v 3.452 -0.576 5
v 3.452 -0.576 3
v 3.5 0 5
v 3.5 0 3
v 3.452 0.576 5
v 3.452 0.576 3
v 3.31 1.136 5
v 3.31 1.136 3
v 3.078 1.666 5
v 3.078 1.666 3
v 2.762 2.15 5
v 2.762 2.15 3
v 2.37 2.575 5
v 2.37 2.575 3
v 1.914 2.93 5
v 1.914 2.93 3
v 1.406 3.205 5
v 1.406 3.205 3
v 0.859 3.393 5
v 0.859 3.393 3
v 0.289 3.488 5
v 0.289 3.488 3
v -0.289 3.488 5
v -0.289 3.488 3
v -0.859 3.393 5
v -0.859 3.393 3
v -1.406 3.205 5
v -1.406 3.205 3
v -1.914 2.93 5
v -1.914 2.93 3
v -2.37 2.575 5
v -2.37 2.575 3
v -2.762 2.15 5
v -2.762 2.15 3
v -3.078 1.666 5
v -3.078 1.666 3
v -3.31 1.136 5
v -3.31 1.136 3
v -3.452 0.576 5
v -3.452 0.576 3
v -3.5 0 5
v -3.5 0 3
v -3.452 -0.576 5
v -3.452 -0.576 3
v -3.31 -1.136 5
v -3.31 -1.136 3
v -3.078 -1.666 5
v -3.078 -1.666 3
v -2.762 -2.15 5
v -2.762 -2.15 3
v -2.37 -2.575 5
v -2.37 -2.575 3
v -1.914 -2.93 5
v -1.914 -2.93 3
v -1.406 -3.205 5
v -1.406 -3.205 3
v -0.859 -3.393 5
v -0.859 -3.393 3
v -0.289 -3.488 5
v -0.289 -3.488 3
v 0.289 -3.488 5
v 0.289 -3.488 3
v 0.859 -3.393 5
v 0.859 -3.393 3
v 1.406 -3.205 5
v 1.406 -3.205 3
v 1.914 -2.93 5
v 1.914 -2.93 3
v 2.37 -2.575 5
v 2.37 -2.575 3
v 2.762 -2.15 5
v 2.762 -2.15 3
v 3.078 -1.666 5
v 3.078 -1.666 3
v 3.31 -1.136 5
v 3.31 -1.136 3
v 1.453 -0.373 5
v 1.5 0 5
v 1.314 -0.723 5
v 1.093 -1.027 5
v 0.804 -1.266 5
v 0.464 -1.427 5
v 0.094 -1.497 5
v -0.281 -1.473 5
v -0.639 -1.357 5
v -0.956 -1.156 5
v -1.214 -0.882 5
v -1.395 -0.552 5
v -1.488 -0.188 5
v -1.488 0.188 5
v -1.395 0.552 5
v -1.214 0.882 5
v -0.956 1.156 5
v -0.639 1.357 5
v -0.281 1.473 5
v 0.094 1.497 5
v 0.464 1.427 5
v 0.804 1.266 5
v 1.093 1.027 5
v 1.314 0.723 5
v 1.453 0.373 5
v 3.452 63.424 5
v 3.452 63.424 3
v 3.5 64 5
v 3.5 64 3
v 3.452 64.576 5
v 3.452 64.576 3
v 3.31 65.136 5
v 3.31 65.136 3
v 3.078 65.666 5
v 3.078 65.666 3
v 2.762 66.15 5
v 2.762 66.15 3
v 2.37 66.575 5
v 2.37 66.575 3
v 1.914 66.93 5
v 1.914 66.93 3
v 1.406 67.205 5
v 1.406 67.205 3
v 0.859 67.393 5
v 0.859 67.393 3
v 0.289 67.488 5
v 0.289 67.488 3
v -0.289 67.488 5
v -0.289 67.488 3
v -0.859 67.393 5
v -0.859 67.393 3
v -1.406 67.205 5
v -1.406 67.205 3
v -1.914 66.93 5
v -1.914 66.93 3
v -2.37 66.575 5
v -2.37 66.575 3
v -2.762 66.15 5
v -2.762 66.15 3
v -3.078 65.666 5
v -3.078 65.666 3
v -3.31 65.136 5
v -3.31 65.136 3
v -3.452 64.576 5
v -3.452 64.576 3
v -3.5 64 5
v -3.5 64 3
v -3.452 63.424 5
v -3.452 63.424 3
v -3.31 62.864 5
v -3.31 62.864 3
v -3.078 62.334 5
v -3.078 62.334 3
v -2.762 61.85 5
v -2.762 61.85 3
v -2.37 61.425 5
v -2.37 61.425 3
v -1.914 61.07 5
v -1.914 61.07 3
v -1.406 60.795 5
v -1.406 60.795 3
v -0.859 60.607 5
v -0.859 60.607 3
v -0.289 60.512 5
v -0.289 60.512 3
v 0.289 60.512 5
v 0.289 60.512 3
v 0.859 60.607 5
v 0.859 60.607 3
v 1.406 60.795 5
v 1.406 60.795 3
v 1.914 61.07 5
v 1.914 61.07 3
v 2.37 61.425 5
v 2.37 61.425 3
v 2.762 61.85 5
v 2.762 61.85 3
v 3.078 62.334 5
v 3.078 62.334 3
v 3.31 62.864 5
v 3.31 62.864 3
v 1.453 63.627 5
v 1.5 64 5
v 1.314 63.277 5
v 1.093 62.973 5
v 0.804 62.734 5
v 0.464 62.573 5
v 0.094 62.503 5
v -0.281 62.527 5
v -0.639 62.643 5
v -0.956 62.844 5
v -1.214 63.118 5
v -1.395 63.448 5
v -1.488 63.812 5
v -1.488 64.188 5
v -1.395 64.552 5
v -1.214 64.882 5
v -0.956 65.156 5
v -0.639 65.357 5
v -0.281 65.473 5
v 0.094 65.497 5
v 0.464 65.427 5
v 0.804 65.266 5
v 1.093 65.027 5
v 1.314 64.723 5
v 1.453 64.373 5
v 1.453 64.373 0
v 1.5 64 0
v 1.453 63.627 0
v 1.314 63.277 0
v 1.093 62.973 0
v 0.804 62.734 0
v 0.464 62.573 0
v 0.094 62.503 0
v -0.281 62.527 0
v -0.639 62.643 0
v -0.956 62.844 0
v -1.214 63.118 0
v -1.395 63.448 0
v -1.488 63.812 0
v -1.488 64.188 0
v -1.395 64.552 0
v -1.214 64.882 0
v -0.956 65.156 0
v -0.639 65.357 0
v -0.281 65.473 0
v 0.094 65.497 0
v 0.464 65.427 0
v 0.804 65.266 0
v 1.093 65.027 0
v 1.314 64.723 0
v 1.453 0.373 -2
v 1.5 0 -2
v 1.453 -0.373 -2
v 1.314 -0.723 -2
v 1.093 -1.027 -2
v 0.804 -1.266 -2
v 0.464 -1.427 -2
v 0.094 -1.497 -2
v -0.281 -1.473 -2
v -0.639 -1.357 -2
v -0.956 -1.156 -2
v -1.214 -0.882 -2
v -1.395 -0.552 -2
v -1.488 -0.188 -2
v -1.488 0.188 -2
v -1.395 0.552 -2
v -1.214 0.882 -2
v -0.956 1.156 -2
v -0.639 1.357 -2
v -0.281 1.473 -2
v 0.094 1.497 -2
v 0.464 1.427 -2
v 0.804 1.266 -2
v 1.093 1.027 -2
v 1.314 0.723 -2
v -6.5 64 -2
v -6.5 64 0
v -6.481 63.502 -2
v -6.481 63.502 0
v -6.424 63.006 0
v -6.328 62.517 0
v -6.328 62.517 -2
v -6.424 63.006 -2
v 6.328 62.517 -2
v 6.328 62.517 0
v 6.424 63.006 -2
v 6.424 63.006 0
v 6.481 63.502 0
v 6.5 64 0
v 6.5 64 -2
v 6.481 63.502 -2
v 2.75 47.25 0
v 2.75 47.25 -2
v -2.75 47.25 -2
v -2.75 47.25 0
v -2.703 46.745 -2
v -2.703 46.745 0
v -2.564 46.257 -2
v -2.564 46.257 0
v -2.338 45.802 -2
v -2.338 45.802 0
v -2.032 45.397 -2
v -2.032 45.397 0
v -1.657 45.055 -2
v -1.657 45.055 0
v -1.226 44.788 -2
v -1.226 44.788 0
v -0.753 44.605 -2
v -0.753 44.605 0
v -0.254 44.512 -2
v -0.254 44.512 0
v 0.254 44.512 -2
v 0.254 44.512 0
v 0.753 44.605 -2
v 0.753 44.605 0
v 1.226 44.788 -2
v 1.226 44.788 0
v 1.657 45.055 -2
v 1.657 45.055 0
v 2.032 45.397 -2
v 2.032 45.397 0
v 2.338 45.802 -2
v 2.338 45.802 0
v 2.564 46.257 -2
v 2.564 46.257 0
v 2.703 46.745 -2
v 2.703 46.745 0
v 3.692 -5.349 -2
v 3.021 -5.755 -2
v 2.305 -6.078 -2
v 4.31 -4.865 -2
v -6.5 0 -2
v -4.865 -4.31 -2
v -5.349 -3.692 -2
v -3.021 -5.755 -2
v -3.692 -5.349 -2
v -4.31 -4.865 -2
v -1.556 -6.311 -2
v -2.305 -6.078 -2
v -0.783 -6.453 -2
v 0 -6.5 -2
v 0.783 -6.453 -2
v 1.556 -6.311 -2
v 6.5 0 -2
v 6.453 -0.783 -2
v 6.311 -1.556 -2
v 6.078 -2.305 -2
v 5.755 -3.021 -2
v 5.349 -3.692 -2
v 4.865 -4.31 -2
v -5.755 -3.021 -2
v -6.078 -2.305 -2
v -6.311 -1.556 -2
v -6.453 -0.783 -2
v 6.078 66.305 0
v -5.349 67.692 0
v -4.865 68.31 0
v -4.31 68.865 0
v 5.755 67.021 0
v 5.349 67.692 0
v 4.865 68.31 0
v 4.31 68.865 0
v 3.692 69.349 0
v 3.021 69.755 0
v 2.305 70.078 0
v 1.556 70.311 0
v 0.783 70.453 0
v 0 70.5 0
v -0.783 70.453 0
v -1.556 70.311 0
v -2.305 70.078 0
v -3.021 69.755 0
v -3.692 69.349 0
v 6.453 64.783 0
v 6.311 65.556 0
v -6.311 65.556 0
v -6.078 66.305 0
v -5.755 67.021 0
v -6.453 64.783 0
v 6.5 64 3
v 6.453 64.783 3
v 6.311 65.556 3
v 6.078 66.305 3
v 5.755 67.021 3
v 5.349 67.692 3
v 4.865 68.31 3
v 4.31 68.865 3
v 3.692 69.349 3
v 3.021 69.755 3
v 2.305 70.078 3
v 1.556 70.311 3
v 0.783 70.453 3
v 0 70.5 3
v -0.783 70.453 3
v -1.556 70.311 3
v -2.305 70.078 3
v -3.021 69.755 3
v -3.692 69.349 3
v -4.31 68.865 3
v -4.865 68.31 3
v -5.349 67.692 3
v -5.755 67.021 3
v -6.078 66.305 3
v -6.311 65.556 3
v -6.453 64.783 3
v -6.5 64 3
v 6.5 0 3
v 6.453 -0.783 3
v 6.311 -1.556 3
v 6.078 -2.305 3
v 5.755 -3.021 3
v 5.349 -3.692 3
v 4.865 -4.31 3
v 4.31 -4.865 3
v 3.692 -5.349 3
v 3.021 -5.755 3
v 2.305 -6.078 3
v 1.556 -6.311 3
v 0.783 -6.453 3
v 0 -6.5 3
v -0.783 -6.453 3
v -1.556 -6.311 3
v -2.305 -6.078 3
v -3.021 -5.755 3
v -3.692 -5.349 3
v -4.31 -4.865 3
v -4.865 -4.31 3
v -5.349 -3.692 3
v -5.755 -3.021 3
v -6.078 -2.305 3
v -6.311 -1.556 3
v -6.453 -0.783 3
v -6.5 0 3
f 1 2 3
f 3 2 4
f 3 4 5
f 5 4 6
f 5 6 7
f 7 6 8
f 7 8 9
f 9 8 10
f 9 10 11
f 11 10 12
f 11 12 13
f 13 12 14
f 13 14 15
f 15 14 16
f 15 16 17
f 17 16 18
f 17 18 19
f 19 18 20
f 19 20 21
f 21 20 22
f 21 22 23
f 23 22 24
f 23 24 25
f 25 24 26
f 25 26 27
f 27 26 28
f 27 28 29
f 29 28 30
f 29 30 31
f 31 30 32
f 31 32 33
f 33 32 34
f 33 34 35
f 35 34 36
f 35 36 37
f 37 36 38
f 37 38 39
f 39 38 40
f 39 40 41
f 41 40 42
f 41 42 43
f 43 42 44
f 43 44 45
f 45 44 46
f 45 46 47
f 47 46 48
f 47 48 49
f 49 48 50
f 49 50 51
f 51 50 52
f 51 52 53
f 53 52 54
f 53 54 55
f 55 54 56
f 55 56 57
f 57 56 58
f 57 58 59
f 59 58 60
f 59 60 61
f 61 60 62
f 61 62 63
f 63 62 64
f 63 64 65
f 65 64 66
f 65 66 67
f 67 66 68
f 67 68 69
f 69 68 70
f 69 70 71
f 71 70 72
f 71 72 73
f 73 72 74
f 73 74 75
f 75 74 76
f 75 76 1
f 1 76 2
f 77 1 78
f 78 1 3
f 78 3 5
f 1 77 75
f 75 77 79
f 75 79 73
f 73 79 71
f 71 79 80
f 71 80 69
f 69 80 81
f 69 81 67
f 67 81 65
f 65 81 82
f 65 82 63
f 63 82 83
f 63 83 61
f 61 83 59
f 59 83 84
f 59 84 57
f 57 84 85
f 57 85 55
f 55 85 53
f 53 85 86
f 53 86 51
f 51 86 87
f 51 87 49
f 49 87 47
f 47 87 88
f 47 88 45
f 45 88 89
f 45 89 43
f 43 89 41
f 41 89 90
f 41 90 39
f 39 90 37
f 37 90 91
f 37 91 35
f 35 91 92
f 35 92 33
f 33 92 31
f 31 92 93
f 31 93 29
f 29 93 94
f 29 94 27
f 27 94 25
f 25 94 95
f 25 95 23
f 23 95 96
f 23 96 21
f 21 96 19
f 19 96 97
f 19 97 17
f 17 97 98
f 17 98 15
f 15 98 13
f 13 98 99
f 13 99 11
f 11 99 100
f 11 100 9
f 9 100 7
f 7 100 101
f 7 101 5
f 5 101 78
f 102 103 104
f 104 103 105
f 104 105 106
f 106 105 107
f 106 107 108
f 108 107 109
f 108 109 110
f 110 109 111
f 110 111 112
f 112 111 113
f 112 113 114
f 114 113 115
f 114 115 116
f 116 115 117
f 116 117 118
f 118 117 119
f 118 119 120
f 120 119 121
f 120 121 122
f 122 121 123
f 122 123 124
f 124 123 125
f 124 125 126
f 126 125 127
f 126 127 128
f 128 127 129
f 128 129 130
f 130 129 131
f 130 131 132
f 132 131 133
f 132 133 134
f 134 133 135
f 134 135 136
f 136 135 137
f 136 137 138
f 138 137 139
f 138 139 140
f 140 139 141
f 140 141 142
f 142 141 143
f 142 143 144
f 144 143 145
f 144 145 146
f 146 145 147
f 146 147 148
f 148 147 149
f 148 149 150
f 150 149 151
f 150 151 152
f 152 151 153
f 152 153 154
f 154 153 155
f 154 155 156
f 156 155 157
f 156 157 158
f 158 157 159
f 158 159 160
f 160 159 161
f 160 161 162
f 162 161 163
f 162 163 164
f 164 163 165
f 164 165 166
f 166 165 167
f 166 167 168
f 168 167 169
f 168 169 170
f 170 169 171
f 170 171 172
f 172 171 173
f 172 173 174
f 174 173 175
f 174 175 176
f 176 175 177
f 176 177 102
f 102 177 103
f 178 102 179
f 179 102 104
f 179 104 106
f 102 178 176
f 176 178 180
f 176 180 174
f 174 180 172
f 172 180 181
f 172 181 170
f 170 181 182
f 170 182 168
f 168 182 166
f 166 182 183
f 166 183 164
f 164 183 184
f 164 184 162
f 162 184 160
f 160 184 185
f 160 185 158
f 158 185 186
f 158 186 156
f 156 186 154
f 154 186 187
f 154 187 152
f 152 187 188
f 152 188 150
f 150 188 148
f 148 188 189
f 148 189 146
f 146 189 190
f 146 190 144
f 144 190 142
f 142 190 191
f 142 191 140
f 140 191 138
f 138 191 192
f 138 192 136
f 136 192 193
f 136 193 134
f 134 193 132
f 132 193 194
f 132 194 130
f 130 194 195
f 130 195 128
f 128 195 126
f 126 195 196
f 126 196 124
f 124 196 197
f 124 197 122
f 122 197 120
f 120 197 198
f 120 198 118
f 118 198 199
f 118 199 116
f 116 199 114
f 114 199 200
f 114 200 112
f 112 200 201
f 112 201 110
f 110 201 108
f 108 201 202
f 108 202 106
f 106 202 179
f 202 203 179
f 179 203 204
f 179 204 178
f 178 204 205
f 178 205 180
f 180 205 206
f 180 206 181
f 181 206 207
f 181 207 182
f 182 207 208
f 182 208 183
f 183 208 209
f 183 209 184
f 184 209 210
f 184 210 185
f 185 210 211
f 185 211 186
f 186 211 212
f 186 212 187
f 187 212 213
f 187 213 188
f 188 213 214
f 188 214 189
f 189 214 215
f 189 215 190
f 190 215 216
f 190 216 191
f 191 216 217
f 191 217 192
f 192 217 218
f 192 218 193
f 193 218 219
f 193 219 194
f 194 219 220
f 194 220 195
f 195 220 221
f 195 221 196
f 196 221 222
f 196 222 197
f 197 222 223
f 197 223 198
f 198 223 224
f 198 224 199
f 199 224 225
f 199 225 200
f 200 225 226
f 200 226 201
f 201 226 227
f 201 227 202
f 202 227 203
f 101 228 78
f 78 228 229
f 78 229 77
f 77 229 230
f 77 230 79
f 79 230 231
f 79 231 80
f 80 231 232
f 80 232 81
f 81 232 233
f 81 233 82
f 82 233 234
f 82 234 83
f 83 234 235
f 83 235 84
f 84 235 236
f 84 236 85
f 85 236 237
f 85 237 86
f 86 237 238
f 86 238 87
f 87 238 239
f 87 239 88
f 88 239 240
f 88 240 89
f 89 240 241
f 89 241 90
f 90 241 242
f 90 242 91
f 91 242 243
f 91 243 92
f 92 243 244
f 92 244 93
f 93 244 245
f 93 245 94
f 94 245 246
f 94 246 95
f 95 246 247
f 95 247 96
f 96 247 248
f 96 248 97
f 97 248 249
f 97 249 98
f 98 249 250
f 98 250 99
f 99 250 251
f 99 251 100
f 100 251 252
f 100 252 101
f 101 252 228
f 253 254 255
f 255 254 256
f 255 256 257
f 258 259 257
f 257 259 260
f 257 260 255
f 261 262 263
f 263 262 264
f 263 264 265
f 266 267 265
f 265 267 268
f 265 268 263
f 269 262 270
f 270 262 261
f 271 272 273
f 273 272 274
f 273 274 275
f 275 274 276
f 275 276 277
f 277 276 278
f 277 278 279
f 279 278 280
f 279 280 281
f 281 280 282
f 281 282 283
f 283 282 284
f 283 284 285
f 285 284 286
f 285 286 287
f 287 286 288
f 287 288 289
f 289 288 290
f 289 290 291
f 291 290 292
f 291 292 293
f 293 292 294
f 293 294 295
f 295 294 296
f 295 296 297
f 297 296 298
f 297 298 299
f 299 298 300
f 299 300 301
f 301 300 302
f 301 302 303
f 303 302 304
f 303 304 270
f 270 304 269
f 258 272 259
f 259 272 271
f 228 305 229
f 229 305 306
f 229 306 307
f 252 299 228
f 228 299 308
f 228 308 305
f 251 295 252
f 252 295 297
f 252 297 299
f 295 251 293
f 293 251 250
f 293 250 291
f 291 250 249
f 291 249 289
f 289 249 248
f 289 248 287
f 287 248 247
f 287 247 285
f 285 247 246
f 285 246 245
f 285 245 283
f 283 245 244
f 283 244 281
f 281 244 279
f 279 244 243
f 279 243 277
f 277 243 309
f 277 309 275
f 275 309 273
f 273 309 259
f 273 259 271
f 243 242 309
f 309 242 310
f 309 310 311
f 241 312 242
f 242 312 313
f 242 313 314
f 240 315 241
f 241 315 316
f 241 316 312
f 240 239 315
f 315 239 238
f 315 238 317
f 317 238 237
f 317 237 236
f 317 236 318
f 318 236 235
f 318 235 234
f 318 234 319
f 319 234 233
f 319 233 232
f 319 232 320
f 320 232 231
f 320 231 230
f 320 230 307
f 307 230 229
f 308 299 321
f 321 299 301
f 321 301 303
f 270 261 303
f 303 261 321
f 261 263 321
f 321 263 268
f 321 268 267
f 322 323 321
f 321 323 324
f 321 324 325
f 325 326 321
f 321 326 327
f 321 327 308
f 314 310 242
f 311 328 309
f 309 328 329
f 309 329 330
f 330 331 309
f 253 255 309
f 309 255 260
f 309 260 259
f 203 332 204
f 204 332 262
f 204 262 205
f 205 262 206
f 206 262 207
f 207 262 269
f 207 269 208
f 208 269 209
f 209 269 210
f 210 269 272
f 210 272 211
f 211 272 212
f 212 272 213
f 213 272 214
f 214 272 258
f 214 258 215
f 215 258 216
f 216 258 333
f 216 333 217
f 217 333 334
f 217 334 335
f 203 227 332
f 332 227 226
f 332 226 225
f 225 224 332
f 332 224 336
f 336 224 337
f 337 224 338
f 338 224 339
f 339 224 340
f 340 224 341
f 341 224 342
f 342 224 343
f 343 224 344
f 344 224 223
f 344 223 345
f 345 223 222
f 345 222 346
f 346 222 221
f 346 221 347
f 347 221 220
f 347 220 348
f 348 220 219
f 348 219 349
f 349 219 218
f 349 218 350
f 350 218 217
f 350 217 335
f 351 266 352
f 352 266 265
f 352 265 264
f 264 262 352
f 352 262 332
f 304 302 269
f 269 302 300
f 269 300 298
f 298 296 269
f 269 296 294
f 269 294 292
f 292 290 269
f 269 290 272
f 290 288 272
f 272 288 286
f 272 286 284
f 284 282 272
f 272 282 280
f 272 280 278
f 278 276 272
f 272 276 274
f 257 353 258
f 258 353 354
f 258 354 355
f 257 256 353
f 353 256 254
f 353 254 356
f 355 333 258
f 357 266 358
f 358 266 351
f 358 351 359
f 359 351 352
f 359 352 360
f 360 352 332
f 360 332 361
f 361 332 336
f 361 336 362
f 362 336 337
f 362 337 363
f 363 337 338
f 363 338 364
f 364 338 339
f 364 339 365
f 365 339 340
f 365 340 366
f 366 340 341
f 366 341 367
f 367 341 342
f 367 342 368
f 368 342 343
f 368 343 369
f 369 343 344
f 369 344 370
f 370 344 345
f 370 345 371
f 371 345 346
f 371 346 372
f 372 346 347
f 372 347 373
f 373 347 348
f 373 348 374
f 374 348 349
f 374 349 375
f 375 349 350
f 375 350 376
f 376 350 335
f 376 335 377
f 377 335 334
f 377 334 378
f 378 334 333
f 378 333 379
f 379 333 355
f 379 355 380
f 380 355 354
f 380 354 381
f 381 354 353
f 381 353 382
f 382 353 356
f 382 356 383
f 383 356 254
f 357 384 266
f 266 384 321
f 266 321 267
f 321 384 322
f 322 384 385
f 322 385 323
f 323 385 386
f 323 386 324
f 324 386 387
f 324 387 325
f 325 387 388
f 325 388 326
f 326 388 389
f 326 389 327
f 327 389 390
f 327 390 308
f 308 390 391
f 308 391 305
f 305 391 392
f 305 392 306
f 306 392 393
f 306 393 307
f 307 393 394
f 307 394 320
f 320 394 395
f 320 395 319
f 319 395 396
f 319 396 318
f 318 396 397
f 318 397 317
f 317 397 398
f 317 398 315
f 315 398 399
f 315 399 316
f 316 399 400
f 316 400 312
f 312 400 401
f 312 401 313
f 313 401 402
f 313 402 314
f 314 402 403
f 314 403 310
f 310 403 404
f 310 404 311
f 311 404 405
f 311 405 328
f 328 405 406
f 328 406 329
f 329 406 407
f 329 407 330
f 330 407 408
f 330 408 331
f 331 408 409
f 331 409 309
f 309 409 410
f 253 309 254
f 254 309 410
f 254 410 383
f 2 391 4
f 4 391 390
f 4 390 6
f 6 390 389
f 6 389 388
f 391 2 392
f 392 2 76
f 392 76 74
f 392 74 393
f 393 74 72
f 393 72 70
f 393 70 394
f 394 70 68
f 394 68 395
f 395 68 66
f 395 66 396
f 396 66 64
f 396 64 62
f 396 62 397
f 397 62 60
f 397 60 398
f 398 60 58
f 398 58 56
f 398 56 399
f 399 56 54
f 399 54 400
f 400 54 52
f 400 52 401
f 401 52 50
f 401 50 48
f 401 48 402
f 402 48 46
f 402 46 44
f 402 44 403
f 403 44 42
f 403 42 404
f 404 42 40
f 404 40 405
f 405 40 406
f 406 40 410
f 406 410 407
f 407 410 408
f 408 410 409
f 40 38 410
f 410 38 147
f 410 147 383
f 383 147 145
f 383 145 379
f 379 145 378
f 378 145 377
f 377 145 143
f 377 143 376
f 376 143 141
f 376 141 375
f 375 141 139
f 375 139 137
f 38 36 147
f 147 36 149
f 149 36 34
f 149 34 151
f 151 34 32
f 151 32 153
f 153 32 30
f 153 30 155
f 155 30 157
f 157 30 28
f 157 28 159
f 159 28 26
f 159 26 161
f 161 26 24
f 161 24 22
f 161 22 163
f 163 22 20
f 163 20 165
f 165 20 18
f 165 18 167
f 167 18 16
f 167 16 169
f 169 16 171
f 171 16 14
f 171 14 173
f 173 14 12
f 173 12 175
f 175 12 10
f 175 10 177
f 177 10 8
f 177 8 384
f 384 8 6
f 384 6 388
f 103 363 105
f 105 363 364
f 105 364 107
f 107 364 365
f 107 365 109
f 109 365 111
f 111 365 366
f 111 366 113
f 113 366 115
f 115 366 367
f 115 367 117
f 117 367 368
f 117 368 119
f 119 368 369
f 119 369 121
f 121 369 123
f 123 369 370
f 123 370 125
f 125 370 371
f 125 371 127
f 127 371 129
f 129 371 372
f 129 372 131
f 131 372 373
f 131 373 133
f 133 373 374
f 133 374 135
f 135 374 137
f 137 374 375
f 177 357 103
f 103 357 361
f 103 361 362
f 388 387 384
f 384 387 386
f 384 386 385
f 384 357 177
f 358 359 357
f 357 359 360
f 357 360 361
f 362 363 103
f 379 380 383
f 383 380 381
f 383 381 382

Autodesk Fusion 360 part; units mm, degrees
sketch "Esquisse1" plane through (0, 0, 0) normal (0, 0, 1) x (1, 0, 0)
  circle A0 centre (0, 0) radius 6.5
  circle A1 centre (0, 64) radius 6.5
  line L0 (0, 64) -> (0, 0)
  line L1 (0, 64) -> (-6.5, 64)
  line L2 (0, 64) -> (6.5, 64)
  line L3 (0, 0) -> (6.5, 0)
  line L4 (0, 0) -> (-6.5, 0)
  line L5 (-6.5, 64) -> (-6.5, 0)
  line L6 (6.5, 64) -> (6.5, 0)
  line L7 (0, 64) -> (0, 44.5)
  line L8 (-2.75, 47.25) -> (2.75, 47.25)
  circle A2 centre (0, 47.25) radius 2.75
  line L9 (-2.75, 47.25) -> (-6.3285, 62.5166)
  line L10 (2.75, 47.25) -> (6.3285, 62.5166)
  dimension "d1" = 13
  dimension "d2" = 13
  dimension "d3" = 64
  dimension "d4" = 19.5
  dimension "d5" = 5.5
  dimension "d6" = 2.75
  dimension "d7" = 2.75
extrude "Extrusion1" add sketch "Esquisse1" along normal blind 3
extrude "Extrusion2" add sketch "Esquisse1" against normal blind 2 contours A0 L3 L4 | A0 A1 L0 L5 A2 L9 | A0 L0 L4 | A0 L0 L3 | A0 A1 L0 L6 A2 L10
sketch "Esquisse2" plane through (0, 0, 3) normal (0, 0, 1) x (-1, 0, 0)
  line L0 (6.5, -64) -> (6.5, 0)
  arc A0 (6.5, 0) -> (-6.5, 0) centre (0, 0) ccw
  line L1 (-6.5, 0) -> (-6.5, -64)
  arc A1 (-6.5, -64) -> (6.5, -64) centre (0, -64) ccw
  circle A2 centre (0, 0) radius 1.5
  circle A3 centre (0, -64) radius 1.5
  dimension "d12" = 3
  dimension "d13" = 3
extrude "Extrusion3" cut sketch "Esquisse2" against normal blind 5 contours A2 | A3
sketch "Esquisse3" plane through (0, 0, 3) normal (0, 0, 1) x (-1, 0, 0)
  circle A0 centre (0, -64) radius 1.5
  circle A1 centre (0, 0) radius 1.5
  line L0 (6.5, -64) -> (6.5, 0)
  arc A2 (6.5, 0) -> (-6.5, 0) centre (0, 0) ccw
  line L1 (-6.5, 0) -> (-6.5, -64)
  arc A3 (-6.5, -64) -> (6.5, -64) centre (0, -64) ccw
  circle A4 centre (0, -64) radius 1.5
  circle A5 centre (0, -64) radius 3.5
  circle A6 centre (0, 0) radius 1.5
  circle A7 centre (0, 0) radius 3.5
  dimension "d16" = 7
  dimension "d17" = 3
  dimension "d18" = 3
  dimension "d19" = 7
extrude "Extrusion5" add sketch "Esquisse3" along normal blind 2 contours A5 | A7
